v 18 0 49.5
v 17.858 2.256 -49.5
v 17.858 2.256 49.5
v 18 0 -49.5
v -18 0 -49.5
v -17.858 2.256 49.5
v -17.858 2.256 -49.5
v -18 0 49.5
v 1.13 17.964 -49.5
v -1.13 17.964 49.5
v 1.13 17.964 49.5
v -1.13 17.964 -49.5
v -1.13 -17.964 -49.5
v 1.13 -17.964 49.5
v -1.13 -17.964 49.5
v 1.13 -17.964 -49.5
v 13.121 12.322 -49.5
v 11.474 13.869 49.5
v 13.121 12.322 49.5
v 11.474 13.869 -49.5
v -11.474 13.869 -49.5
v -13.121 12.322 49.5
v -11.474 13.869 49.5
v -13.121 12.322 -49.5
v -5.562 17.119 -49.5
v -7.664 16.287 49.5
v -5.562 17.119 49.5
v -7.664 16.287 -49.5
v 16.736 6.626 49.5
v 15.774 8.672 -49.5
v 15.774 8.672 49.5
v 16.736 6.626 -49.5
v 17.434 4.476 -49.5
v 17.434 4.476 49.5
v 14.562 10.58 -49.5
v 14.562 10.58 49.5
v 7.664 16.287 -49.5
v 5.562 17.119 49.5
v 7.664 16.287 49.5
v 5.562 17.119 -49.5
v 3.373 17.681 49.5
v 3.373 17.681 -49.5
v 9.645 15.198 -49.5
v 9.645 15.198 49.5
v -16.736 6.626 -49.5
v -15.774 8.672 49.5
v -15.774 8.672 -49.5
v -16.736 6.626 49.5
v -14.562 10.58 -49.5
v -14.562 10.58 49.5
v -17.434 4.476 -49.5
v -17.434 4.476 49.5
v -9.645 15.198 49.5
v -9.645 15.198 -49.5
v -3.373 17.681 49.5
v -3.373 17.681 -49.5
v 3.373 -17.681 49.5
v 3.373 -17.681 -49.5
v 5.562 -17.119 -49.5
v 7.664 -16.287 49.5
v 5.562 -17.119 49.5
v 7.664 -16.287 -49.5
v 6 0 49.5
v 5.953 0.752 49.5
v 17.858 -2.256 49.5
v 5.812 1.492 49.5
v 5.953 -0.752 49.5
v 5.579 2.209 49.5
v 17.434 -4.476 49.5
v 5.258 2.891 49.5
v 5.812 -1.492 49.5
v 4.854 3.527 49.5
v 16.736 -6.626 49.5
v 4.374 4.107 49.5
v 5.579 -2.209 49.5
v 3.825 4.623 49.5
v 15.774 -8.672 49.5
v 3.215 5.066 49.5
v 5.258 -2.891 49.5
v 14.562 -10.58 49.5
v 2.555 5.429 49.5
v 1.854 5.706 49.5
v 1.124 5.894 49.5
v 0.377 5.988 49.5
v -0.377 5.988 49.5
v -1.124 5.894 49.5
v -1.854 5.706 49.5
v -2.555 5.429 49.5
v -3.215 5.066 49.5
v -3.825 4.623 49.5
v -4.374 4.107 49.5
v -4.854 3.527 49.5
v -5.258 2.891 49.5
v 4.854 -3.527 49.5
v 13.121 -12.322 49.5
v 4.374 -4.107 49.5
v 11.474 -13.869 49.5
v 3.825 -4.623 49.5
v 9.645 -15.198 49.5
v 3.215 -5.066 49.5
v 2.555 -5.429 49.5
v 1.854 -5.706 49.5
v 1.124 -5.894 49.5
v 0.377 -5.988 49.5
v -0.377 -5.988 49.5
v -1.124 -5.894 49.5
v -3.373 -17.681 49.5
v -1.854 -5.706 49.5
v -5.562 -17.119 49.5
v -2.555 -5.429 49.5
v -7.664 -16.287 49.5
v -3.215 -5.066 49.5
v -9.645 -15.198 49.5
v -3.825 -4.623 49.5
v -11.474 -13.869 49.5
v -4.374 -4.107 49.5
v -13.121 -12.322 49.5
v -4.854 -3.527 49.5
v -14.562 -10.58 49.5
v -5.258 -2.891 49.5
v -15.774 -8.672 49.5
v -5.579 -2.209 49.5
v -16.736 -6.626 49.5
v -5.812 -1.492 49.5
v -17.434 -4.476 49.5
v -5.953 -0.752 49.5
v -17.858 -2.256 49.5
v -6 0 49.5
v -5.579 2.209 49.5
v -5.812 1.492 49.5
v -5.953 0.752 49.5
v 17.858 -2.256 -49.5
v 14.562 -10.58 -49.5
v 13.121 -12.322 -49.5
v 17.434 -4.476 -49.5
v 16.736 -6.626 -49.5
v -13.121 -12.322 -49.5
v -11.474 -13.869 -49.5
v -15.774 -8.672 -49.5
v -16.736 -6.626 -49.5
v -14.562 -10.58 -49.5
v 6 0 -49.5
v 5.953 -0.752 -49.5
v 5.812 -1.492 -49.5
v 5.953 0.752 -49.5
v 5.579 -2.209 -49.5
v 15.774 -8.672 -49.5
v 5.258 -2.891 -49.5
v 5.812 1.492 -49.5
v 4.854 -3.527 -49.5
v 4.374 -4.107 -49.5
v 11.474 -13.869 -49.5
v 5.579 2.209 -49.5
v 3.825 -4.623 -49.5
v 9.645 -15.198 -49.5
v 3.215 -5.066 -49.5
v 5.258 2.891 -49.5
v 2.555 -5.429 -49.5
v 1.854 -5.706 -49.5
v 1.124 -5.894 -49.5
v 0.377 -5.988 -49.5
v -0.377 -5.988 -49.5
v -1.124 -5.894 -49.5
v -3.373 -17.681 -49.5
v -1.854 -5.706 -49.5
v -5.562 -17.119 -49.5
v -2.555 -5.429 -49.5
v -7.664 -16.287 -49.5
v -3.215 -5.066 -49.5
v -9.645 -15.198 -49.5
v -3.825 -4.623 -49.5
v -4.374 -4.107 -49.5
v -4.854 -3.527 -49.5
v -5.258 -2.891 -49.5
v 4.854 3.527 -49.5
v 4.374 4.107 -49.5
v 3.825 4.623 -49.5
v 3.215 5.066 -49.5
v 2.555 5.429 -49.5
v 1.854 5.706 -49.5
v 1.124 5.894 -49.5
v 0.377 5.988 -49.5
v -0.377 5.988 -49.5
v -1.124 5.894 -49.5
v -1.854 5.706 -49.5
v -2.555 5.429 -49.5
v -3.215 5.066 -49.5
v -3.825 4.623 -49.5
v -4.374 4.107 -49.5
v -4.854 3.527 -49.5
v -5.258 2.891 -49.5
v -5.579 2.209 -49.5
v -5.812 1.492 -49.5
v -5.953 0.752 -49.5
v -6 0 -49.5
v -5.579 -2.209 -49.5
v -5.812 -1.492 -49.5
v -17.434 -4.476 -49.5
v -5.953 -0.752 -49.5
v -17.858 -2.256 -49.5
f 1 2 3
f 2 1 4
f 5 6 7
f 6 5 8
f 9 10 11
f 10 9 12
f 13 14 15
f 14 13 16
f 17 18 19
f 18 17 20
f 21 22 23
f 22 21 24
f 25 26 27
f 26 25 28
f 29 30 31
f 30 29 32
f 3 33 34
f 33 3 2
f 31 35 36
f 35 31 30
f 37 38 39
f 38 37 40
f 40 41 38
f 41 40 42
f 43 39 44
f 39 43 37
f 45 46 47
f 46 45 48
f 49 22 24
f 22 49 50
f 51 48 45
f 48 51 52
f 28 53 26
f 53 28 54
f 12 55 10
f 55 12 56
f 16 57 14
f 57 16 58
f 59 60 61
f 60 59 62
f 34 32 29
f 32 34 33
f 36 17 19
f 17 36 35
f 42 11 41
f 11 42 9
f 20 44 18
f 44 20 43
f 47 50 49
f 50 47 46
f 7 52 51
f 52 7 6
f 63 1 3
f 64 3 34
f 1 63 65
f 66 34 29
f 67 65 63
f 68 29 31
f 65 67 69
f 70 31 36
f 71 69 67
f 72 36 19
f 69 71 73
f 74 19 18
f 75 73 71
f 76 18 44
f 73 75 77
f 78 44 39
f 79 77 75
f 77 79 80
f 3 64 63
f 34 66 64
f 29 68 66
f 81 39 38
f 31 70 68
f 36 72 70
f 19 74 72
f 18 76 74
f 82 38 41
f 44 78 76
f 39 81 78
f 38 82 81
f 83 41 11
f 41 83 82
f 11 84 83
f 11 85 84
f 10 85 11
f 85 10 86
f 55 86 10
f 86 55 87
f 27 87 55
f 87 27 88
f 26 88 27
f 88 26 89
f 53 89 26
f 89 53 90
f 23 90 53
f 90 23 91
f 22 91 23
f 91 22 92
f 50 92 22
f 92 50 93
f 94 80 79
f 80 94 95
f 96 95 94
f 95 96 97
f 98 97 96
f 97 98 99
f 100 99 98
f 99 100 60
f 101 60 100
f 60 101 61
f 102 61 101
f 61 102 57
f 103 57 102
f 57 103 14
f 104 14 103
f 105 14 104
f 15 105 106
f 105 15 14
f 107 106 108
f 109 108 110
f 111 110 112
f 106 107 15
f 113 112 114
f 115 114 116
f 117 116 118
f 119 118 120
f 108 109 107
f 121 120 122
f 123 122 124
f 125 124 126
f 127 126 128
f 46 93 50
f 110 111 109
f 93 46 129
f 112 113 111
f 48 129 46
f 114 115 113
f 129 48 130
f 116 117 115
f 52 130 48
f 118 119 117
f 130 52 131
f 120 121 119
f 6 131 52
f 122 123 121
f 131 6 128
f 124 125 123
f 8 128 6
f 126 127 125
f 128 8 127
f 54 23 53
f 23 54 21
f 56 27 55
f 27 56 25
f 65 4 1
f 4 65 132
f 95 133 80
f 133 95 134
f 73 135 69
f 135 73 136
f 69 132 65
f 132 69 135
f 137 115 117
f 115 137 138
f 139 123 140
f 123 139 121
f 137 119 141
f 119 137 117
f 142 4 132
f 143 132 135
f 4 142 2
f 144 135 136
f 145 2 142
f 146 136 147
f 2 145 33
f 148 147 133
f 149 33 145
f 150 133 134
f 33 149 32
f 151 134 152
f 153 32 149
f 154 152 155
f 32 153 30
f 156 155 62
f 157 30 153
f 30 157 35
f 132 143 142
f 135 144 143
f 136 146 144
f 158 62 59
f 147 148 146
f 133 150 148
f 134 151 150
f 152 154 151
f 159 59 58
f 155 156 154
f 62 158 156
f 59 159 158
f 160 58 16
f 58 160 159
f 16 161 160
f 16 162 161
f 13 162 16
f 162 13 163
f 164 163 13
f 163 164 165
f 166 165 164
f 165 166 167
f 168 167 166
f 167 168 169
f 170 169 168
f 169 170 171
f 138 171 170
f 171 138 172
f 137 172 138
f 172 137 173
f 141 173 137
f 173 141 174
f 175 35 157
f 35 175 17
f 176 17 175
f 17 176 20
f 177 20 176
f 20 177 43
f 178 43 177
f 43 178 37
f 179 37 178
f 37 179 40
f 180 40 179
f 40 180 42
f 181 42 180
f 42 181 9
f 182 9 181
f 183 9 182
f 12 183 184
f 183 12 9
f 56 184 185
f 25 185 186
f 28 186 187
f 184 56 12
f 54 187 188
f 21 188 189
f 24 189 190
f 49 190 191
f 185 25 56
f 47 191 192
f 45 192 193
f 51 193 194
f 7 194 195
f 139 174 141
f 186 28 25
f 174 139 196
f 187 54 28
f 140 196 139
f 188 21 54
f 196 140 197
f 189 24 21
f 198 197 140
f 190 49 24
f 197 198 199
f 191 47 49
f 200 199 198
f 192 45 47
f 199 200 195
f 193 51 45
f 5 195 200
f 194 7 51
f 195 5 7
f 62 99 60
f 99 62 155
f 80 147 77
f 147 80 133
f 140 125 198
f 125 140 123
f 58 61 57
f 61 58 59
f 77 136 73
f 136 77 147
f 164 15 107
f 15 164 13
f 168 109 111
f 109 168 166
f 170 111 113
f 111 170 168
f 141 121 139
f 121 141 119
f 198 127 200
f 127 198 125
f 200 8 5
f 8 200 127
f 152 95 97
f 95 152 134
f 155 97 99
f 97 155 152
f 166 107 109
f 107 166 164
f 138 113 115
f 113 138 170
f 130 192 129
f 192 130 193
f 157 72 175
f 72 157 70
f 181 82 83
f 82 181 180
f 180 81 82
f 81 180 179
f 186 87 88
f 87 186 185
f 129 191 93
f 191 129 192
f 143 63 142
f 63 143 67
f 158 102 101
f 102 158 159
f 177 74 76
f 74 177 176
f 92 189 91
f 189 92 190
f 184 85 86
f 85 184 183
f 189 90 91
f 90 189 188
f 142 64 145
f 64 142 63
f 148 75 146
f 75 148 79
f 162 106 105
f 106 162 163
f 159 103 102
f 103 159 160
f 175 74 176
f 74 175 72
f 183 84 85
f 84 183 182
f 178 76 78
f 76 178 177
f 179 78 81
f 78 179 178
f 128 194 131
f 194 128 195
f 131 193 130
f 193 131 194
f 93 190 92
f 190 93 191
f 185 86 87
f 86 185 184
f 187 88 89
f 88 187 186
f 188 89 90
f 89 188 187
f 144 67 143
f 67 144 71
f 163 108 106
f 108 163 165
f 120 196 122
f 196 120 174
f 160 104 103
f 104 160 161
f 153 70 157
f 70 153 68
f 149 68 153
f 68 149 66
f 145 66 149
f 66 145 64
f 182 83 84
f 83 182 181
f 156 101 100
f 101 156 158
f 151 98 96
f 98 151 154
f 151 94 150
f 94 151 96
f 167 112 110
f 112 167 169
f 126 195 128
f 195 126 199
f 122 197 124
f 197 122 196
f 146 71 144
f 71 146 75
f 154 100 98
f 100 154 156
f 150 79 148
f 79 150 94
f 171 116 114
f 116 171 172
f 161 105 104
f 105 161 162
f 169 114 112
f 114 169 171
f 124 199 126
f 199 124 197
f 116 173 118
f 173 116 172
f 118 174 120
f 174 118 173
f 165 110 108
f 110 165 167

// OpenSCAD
$fn = 50;


difference() {
	union() {
		translate(v = [0, 0, -49.5000000000]) {
			cylinder(h = 99, r = 18.0000000000);
		}
	}
	union() {
		translate(v = [0, 0, -100.0000000000]) {
			cylinder(h = 200, r = 6);
		}
	}
}
